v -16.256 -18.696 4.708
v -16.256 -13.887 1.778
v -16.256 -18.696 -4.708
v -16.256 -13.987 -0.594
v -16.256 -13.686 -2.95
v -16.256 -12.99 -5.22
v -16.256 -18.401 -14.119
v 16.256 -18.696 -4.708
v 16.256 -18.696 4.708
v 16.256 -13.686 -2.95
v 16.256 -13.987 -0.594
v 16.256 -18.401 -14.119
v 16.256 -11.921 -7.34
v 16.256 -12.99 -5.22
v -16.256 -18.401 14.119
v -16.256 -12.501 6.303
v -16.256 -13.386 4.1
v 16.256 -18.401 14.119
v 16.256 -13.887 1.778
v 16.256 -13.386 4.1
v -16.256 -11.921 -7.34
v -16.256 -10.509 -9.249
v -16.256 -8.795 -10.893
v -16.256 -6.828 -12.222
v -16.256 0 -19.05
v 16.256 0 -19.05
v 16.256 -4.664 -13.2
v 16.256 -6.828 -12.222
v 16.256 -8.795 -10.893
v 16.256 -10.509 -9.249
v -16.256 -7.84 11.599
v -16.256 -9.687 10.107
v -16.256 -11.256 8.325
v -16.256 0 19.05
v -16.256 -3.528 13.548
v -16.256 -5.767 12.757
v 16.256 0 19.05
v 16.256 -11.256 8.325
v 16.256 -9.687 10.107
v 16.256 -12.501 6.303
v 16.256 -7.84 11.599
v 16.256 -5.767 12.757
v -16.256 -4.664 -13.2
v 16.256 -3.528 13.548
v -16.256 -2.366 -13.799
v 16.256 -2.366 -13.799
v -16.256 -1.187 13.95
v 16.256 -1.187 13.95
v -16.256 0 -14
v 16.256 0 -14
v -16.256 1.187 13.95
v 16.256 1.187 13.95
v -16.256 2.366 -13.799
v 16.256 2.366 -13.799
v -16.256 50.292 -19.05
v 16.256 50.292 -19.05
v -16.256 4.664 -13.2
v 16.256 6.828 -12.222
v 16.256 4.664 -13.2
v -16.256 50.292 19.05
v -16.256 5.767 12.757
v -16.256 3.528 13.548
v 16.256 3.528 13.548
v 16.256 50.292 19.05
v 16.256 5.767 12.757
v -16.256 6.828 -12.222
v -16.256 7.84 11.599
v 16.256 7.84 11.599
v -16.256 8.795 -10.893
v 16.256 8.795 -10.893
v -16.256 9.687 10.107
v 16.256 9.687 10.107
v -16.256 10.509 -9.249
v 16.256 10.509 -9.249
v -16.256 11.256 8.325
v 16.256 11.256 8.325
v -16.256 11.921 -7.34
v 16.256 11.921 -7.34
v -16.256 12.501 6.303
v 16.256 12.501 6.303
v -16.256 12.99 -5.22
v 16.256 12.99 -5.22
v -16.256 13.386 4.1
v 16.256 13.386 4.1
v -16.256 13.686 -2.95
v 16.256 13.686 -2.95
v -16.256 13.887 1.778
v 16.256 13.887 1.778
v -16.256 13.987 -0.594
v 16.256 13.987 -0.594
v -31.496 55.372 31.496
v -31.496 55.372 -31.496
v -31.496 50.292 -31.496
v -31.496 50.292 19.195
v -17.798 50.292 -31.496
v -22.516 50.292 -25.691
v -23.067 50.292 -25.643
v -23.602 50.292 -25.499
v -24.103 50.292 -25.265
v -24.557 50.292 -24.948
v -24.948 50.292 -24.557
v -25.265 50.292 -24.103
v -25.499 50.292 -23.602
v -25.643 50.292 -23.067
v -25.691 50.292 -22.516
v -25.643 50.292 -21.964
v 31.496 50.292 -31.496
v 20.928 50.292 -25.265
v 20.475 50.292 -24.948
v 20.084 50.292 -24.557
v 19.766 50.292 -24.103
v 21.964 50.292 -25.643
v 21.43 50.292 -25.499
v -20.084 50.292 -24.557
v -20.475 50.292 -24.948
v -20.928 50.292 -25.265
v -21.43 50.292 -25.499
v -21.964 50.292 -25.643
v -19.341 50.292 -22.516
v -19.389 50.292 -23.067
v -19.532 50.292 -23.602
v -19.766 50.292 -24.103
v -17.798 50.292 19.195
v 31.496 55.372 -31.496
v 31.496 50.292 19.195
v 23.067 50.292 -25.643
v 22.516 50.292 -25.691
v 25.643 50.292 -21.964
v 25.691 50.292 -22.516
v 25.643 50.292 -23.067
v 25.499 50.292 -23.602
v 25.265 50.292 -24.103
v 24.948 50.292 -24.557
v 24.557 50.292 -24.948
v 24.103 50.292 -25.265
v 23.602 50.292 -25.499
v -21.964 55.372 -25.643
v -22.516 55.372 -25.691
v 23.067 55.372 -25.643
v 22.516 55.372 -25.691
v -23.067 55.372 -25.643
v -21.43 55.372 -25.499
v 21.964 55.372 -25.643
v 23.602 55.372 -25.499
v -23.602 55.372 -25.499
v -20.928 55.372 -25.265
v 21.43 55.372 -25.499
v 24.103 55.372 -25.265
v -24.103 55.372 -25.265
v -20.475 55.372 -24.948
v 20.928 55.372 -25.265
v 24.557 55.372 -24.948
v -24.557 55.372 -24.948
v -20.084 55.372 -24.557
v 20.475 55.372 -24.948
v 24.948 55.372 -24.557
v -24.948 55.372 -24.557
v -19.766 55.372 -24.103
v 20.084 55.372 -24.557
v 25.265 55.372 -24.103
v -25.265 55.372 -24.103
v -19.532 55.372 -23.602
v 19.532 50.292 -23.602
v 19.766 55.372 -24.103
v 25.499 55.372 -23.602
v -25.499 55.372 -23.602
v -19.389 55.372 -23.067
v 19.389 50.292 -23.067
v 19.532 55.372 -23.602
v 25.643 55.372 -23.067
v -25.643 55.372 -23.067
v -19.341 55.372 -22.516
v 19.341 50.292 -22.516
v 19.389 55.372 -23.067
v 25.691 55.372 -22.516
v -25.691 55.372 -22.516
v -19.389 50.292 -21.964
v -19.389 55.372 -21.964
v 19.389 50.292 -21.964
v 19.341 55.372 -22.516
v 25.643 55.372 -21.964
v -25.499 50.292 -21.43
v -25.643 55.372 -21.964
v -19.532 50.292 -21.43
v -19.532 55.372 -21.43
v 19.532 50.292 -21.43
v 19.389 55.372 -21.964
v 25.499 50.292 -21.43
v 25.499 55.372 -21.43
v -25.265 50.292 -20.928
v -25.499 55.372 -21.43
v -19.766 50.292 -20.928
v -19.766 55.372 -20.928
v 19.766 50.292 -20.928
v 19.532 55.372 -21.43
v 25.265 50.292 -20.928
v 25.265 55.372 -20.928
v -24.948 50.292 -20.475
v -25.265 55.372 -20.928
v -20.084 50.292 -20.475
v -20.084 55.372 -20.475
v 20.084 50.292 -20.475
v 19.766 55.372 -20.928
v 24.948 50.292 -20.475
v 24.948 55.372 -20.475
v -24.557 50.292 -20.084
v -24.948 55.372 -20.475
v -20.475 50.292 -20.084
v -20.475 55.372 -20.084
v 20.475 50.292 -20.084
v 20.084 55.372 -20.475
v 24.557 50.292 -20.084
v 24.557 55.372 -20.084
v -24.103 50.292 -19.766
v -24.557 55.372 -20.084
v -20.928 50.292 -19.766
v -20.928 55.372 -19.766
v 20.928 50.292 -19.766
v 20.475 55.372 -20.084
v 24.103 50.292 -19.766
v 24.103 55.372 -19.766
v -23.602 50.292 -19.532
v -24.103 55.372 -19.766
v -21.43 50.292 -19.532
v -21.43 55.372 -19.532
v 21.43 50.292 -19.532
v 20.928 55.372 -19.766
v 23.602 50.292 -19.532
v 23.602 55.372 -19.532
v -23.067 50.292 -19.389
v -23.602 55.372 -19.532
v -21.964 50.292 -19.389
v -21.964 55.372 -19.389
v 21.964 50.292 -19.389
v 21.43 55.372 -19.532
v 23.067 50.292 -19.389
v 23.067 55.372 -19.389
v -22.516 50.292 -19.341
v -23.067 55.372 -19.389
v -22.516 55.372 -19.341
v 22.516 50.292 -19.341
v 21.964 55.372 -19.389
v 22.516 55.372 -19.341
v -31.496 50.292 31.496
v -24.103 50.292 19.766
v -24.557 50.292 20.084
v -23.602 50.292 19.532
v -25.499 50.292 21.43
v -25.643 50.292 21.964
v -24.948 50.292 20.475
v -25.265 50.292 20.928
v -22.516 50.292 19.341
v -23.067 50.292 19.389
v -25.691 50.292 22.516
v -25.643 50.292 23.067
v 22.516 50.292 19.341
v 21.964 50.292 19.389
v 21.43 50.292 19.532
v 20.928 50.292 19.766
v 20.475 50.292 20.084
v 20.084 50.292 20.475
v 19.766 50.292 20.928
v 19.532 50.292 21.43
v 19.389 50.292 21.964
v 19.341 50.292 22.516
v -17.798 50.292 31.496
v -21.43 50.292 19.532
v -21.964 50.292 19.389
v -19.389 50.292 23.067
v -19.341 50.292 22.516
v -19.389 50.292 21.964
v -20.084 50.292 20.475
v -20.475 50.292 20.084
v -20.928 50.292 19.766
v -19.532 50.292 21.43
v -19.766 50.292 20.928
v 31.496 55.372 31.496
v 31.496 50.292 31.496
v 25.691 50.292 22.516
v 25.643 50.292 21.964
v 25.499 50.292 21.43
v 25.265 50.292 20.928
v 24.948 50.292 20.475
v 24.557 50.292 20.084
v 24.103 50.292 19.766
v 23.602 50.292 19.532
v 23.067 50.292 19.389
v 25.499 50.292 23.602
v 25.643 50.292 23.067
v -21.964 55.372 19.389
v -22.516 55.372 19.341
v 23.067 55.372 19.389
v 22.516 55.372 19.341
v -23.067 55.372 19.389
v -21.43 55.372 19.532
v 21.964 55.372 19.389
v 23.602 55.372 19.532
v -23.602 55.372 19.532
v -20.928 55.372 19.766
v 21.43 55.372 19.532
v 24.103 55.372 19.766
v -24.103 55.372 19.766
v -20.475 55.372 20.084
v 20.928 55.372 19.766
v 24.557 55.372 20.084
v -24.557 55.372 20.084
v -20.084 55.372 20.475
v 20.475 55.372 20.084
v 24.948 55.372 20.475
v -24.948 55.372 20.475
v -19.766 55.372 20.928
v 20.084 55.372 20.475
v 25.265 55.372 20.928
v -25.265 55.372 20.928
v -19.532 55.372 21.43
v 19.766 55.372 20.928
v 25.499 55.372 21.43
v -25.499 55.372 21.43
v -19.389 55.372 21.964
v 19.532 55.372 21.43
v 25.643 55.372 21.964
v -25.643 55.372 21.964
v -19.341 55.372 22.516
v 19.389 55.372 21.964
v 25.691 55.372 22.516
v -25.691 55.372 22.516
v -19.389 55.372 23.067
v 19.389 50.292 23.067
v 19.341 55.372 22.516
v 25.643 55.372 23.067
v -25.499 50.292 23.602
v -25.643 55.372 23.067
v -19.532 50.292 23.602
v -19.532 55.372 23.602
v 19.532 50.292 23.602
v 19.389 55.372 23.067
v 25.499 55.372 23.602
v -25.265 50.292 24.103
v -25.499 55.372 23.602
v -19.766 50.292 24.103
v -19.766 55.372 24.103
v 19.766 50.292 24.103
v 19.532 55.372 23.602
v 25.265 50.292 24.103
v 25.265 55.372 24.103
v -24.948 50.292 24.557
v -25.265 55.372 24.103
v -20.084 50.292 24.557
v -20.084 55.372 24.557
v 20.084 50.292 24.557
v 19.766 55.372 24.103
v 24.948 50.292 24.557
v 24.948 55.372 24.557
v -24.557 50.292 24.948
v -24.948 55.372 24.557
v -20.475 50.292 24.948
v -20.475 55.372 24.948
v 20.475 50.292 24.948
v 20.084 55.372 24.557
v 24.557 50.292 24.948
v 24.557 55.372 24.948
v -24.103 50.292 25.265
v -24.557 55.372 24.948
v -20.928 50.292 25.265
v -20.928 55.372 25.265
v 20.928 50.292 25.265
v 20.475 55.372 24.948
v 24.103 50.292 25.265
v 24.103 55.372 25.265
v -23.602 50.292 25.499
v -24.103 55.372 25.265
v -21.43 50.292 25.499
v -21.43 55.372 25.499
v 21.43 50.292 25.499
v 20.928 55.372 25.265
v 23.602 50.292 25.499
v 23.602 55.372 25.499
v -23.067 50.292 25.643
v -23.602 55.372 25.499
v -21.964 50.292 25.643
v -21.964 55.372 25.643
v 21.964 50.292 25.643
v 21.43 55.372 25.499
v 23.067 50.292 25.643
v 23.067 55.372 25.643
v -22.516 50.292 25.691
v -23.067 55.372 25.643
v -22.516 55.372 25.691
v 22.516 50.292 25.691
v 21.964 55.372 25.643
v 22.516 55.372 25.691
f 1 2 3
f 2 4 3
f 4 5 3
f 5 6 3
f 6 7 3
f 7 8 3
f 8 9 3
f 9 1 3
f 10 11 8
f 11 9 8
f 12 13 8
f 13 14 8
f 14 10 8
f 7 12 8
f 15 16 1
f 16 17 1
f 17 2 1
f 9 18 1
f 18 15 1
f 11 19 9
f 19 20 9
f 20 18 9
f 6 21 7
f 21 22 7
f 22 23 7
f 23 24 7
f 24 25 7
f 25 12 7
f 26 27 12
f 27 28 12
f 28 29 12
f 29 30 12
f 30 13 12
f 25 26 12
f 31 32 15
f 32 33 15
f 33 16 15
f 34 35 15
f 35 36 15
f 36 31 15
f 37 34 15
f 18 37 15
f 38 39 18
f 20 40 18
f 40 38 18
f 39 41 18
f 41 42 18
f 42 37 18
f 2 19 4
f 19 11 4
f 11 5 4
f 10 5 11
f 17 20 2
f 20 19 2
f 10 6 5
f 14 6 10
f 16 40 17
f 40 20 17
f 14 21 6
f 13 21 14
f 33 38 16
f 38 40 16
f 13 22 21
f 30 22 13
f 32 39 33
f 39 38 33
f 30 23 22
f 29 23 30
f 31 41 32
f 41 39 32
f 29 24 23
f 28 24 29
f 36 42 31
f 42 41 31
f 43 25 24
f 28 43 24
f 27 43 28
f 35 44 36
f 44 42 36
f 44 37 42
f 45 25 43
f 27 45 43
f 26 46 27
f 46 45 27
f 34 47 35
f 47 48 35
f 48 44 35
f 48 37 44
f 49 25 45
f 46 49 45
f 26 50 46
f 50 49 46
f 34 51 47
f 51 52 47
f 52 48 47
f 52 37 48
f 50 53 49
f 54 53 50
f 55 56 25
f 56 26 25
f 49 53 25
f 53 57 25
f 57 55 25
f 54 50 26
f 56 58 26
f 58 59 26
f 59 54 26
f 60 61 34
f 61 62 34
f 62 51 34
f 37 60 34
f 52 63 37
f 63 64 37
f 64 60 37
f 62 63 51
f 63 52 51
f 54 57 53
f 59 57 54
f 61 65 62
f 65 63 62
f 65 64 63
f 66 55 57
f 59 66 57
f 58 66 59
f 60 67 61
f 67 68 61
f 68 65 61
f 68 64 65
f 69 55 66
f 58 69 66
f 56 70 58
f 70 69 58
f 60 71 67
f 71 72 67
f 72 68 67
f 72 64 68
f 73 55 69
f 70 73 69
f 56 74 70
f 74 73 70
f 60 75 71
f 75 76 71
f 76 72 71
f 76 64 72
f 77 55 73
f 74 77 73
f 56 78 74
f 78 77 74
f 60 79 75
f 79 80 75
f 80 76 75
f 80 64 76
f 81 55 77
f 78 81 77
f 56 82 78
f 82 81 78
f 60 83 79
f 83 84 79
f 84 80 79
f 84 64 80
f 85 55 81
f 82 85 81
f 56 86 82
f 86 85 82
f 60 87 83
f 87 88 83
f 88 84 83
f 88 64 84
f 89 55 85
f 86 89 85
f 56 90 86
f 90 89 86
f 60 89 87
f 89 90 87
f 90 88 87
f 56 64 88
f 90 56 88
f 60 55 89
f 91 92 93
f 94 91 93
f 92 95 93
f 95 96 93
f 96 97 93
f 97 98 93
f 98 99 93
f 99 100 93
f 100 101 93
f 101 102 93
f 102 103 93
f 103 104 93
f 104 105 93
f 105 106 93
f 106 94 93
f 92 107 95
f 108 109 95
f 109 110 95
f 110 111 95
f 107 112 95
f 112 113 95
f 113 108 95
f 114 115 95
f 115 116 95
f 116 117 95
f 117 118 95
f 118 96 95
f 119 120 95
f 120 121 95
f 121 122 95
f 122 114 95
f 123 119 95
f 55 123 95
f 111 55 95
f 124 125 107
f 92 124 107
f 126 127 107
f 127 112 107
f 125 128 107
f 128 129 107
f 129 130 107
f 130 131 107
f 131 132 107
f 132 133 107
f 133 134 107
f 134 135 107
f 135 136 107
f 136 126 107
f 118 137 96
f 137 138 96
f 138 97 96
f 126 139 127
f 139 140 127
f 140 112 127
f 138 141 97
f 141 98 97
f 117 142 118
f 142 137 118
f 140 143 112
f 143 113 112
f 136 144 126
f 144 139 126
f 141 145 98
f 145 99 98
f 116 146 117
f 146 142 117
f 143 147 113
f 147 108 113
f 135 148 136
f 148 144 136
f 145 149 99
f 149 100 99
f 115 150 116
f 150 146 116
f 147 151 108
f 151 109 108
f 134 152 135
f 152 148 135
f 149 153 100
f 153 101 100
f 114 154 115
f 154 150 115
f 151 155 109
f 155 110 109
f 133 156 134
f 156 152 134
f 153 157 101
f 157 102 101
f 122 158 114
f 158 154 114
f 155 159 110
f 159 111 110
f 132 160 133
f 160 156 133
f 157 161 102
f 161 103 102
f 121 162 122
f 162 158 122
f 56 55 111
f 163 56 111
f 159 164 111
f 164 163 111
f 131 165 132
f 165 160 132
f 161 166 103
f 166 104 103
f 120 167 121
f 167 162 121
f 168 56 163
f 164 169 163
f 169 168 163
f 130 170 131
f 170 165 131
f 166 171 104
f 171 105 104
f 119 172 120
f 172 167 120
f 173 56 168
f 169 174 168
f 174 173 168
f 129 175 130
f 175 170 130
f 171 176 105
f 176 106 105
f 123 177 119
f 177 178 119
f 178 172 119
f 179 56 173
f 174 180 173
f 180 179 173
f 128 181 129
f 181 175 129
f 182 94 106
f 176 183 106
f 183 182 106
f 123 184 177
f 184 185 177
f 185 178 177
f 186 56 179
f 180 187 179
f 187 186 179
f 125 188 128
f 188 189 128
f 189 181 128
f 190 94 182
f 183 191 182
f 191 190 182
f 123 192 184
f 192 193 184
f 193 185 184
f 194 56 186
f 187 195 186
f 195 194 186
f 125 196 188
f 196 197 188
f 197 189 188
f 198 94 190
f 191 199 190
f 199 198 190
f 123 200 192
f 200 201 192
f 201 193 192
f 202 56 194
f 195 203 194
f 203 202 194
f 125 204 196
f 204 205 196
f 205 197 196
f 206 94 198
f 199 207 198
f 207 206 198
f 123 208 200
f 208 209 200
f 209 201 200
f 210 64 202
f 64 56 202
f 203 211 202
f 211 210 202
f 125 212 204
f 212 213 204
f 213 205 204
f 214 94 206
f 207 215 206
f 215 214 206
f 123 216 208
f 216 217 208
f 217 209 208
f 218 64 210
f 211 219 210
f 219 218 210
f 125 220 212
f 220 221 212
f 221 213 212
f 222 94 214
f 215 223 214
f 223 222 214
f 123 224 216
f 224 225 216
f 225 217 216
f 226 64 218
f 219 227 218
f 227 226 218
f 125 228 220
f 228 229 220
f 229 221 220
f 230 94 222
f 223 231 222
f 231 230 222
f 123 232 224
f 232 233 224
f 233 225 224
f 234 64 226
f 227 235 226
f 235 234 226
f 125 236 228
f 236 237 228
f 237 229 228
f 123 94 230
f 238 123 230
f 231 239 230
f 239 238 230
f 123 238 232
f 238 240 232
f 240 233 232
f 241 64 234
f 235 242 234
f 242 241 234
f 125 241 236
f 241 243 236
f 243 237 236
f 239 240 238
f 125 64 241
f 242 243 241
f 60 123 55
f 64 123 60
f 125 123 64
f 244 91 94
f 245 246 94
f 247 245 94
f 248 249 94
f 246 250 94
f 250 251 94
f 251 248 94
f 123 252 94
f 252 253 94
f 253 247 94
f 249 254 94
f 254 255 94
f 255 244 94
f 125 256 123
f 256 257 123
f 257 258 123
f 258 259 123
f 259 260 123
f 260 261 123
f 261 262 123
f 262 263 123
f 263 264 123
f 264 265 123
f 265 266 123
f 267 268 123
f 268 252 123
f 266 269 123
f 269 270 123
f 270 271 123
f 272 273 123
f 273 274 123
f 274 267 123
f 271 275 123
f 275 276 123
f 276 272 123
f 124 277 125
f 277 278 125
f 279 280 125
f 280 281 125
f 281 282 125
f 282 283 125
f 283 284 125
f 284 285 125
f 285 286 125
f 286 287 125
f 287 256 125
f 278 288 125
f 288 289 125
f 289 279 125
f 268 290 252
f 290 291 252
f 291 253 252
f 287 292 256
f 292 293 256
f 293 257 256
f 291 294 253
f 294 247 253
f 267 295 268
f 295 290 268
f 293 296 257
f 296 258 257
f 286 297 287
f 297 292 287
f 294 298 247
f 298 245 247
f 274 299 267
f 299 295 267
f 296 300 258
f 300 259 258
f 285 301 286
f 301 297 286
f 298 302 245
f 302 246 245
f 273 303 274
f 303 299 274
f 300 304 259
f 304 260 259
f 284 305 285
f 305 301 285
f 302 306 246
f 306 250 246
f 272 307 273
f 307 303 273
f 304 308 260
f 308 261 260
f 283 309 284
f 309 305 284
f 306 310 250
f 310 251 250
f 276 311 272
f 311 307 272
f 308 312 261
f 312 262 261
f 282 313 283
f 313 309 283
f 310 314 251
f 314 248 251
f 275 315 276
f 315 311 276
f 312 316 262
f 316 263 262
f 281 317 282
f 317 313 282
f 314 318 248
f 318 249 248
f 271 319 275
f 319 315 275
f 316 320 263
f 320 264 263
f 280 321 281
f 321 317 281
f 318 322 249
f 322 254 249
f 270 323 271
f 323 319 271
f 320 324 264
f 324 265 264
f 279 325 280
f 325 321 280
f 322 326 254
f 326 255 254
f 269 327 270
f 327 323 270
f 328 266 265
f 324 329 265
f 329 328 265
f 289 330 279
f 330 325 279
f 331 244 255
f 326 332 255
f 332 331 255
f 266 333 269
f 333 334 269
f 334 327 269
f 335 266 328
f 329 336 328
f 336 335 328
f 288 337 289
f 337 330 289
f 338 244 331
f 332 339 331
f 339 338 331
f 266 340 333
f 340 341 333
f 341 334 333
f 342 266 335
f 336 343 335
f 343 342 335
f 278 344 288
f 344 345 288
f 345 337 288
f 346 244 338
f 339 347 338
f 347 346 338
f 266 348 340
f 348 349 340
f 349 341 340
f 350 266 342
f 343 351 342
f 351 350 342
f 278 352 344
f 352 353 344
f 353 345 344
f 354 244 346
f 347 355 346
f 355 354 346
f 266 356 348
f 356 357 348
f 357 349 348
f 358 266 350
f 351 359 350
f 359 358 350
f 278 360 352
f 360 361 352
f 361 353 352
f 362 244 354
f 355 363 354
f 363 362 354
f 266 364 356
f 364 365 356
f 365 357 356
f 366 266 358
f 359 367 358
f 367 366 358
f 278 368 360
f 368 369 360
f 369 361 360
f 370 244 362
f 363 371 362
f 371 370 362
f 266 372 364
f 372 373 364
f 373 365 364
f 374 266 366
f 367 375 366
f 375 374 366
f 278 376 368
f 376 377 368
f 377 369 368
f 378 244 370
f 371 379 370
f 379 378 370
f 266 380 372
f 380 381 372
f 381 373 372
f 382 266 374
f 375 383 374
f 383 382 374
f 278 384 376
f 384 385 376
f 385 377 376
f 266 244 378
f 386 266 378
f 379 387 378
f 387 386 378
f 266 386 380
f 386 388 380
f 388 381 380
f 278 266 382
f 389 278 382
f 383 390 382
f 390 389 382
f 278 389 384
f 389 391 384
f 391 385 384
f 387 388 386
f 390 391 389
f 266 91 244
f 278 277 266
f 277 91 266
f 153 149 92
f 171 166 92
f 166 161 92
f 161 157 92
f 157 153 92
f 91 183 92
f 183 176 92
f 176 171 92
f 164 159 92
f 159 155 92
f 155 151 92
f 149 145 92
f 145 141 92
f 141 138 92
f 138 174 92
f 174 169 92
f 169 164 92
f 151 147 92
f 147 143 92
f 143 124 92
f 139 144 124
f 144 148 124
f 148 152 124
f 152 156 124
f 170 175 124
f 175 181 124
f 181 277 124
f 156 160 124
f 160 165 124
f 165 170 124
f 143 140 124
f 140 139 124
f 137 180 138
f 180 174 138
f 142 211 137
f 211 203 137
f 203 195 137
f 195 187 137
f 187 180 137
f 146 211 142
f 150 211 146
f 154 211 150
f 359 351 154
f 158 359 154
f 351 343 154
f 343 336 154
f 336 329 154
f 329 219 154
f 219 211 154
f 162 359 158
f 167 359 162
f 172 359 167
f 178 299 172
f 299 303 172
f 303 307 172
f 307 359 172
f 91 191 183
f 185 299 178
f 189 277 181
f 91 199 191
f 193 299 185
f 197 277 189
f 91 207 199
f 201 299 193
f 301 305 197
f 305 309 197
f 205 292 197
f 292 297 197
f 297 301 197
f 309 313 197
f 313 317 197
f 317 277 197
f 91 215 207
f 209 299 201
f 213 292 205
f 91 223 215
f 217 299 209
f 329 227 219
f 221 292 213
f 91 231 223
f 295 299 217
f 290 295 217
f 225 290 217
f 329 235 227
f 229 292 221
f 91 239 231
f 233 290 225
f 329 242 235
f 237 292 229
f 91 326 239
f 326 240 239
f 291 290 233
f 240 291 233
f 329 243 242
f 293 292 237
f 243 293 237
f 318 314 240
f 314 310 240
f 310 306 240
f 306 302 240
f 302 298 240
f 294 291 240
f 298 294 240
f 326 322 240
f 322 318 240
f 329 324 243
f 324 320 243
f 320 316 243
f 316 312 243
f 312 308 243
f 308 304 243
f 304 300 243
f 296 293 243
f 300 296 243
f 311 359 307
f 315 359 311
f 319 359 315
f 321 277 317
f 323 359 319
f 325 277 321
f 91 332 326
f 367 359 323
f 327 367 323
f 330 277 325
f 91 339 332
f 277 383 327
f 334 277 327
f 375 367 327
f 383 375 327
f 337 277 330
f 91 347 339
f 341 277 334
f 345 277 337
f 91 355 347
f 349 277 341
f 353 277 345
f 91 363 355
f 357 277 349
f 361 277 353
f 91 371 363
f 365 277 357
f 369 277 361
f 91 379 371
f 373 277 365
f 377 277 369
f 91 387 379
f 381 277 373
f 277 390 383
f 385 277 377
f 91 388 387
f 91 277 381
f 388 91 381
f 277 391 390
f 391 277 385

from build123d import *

# Parameters (mm, degrees)
SKETCH1_W           = 32.512
SKETCH1_H           = 38.1
BOSS_EXTRUDE1_DEPTH = 50.292
BOSS_EXTRUDE2_DEPTH = 32.512
SKETCH3_R           = 14
CUT_EXTRUDE1_DEPTH  = 127
SKETCH4_W           = 62.992
SKETCH4_H           = 62.992
BOSS_EXTRUDE3_DEPTH = 5.08
SKETCH5_R           = 3.175
CUT_EXTRUDE2_DEPTH  = 75.105351542


with BuildPart() as part:
    # Sketch1 → Boss-Extrude1 (new body)
    with BuildSketch(Plane(origin=(0, 0, 0), x_dir=(1, 0, 0), z_dir=(0, 1, 0))):
        Rectangle(SKETCH1_W, SKETCH1_H)
    extrude(amount=BOSS_EXTRUDE1_DEPTH)

    # Sketch2 → Boss-Extrude2 (add)
    with BuildSketch(Plane(origin=(16.256, 0, 0), x_dir=(0, 0, -1), z_dir=(1, 0, 0))):
        with BuildLine():
            Line((-19.05, 0), (-14.119497191, -18.400886991))
            ThreePointArc((-14.119497191, -18.400886991), (0, -18.733351542), (14.119497191, -18.400886991))
            Line((14.119497191, -18.400886991), (19.05, 0))
            Line((19.05, 0), (-19.05, 0))
        make_face()
    extrude(amount=-BOSS_EXTRUDE2_DEPTH)

    # Sketch3 → Cut-Extrude1 (cut)
    with BuildSketch(Plane(origin=(16.256, 0, 0), x_dir=(0, 0, -1), z_dir=(1, 0, 0))):
        Circle(SKETCH3_R)
    extrude(amount=-CUT_EXTRUDE1_DEPTH, mode=Mode.SUBTRACT)

    # Sketch4 → Boss-Extrude3 (add)
    with BuildSketch(Plane(origin=(0, 50.292, 0), x_dir=(1, 0, 0), z_dir=(0, 1, 0))):
        Rectangle(SKETCH4_W, SKETCH4_H)
    extrude(amount=BOSS_EXTRUDE3_DEPTH)

    # Sketch5 → Cut-Extrude2 (cut, through all)
    with BuildSketch(Plane(origin=(0, 55.372, 0), x_dir=(1, 0, 0), z_dir=(0, 1, 0))):
        with Locations((-22.515743879, 22.515743879)):
            Circle(SKETCH5_R)
        with Locations((22.515743879, 22.515743879)):
            Circle(SKETCH5_R)
        with Locations((-22.515743879, -22.515743879)):
            Circle(SKETCH5_R)
        with Locations((22.515743879, -22.515743879)):
            Circle(SKETCH5_R)
    extrude(amount=-CUT_EXTRUDE2_DEPTH, mode=Mode.SUBTRACT)


solid = part.part
